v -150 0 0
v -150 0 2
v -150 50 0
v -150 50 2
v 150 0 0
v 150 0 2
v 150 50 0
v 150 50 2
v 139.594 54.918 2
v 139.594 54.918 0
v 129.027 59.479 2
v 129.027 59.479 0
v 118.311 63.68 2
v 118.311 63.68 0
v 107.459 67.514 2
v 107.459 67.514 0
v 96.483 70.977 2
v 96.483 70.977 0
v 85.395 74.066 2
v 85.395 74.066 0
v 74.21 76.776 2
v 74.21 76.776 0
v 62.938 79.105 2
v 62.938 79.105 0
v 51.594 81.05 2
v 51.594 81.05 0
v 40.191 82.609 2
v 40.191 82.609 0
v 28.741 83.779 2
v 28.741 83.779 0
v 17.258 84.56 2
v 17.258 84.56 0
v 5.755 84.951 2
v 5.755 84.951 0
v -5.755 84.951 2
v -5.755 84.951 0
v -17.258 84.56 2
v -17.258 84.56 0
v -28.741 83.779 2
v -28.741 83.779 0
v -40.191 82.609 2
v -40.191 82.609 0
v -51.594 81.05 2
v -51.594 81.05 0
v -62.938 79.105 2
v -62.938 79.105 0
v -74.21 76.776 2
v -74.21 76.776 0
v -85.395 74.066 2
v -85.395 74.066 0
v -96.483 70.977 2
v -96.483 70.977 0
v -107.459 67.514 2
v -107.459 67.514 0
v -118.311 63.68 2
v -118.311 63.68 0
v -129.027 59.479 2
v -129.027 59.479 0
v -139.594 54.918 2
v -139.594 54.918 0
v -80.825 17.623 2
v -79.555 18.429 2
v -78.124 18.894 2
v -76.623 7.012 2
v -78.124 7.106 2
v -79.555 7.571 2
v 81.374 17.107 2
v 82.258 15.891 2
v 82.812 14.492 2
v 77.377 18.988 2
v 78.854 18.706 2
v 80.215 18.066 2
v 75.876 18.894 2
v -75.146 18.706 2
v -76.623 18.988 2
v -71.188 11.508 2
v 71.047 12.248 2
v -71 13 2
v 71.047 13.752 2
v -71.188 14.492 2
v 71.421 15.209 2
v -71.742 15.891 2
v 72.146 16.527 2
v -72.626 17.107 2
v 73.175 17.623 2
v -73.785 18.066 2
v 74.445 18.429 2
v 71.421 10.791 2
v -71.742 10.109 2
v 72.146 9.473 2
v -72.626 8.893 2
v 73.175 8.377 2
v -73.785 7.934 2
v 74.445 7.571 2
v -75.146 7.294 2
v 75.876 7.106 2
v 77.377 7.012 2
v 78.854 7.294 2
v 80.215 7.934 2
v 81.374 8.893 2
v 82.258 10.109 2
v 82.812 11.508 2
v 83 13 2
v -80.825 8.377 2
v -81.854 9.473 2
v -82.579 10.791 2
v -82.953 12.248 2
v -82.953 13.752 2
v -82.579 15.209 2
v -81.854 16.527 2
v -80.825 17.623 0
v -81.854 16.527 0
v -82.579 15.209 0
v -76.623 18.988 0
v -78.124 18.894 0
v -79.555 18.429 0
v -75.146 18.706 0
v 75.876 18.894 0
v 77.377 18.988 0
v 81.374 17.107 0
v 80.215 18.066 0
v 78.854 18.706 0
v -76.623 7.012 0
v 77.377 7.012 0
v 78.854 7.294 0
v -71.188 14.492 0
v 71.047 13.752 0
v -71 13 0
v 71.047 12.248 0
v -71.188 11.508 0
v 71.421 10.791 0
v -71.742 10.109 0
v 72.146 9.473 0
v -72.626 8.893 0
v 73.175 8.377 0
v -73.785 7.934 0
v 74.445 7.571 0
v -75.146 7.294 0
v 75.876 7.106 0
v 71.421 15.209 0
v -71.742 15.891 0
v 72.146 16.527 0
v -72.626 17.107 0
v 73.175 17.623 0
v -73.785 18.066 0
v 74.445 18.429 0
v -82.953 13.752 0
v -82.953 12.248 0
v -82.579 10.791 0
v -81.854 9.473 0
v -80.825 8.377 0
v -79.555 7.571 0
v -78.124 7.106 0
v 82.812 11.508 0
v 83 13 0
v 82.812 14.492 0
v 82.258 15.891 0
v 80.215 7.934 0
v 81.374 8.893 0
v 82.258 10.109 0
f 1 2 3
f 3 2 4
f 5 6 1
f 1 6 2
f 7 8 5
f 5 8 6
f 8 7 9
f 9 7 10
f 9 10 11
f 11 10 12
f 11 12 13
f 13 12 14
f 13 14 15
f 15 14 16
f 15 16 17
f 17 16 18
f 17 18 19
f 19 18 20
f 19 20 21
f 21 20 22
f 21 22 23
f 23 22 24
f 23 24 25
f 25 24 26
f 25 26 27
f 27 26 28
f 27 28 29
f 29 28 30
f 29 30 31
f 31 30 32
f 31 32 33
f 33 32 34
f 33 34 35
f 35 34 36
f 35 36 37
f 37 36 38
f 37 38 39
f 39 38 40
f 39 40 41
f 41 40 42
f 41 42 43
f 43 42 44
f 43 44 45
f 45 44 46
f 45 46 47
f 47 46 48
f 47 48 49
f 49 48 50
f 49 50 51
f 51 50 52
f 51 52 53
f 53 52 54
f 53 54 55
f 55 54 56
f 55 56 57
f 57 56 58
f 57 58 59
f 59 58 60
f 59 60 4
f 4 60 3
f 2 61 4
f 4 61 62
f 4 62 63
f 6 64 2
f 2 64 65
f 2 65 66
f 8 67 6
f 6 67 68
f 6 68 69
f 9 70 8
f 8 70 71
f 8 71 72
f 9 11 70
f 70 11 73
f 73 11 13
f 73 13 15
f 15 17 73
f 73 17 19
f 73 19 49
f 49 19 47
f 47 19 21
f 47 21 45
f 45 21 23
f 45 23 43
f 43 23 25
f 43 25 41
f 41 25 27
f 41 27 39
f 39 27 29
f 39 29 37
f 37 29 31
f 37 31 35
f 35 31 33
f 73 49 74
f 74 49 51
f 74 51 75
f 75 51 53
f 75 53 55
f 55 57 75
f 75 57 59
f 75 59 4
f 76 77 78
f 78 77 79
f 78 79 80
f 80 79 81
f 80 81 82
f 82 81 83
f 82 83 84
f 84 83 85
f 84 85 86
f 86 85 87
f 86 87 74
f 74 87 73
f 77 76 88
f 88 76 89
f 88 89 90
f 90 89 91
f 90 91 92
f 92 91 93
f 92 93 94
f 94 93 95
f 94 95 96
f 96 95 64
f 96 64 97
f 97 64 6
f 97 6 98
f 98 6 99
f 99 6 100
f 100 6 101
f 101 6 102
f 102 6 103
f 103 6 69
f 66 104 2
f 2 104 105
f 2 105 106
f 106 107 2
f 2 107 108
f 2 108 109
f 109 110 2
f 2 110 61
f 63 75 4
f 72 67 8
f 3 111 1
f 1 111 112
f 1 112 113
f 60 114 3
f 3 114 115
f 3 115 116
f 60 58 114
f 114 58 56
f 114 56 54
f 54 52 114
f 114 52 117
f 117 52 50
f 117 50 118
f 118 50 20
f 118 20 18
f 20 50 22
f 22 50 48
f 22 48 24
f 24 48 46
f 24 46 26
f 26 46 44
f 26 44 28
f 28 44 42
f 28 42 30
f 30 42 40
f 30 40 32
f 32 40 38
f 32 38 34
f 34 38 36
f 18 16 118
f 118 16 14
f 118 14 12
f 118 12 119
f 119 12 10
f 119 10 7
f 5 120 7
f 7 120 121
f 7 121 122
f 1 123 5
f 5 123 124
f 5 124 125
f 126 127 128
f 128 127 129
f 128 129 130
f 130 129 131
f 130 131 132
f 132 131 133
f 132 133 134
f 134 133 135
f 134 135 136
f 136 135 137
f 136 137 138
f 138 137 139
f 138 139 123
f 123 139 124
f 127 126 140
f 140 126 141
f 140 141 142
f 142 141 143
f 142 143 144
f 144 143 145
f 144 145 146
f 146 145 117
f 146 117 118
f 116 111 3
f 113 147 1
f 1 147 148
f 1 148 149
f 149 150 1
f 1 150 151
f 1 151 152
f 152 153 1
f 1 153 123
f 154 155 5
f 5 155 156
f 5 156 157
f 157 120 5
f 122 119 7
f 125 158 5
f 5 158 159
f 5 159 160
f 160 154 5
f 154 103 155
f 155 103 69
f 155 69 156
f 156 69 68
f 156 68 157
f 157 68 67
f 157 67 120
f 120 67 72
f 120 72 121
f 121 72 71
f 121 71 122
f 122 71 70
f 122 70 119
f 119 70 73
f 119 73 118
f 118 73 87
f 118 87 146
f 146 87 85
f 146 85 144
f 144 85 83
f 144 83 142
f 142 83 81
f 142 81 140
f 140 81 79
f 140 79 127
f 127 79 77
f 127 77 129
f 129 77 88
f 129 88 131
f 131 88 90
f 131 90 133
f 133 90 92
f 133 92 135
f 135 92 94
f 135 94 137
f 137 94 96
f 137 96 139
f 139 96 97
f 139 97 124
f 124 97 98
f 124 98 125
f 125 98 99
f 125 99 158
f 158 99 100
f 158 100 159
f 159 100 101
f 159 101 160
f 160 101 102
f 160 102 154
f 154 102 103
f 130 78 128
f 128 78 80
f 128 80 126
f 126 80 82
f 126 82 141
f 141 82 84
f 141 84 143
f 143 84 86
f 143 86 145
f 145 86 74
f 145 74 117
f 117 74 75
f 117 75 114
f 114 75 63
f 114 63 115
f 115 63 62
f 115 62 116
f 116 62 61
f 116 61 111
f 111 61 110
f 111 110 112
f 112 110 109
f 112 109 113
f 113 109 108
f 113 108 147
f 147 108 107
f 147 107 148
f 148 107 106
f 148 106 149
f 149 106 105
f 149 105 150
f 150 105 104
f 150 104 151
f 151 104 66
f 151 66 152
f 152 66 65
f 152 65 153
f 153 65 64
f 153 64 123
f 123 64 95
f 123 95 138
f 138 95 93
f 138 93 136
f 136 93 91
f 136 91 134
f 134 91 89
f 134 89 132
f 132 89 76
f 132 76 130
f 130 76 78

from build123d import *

# Parameters (mm, degrees)
SALIENTE_EXTRUIR1_DEPTH = 2
CROQUIS2_R              = 6
CORTAR_EXTRUIR1_DEPTH   = 173.420996401


with BuildPart() as part:
    # Croquis1 → Saliente-Extruir1 (new body)
    with BuildSketch(Plane.XY):
        with BuildLine():
            Line((-150, 0), (150, 0))
            Line((150, 0), (150, 50))
            ThreePointArc((150, 50), (0, 85), (-150, 50))
            Line((-150, 50), (-150, 0))
        make_face()
    extrude(amount=SALIENTE_EXTRUIR1_DEPTH)

    # Croquis2 → Cortar-Extruir1 (cut, through all)
    with BuildSketch(Plane.XY.offset(2)):
        with Locations((-77, 13)):
            Circle(CROQUIS2_R)
        with Locations((77, 13)):
            Circle(CROQUIS2_R)
    extrude(amount=-CORTAR_EXTRUIR1_DEPTH, mode=Mode.SUBTRACT)


solid = part.part
